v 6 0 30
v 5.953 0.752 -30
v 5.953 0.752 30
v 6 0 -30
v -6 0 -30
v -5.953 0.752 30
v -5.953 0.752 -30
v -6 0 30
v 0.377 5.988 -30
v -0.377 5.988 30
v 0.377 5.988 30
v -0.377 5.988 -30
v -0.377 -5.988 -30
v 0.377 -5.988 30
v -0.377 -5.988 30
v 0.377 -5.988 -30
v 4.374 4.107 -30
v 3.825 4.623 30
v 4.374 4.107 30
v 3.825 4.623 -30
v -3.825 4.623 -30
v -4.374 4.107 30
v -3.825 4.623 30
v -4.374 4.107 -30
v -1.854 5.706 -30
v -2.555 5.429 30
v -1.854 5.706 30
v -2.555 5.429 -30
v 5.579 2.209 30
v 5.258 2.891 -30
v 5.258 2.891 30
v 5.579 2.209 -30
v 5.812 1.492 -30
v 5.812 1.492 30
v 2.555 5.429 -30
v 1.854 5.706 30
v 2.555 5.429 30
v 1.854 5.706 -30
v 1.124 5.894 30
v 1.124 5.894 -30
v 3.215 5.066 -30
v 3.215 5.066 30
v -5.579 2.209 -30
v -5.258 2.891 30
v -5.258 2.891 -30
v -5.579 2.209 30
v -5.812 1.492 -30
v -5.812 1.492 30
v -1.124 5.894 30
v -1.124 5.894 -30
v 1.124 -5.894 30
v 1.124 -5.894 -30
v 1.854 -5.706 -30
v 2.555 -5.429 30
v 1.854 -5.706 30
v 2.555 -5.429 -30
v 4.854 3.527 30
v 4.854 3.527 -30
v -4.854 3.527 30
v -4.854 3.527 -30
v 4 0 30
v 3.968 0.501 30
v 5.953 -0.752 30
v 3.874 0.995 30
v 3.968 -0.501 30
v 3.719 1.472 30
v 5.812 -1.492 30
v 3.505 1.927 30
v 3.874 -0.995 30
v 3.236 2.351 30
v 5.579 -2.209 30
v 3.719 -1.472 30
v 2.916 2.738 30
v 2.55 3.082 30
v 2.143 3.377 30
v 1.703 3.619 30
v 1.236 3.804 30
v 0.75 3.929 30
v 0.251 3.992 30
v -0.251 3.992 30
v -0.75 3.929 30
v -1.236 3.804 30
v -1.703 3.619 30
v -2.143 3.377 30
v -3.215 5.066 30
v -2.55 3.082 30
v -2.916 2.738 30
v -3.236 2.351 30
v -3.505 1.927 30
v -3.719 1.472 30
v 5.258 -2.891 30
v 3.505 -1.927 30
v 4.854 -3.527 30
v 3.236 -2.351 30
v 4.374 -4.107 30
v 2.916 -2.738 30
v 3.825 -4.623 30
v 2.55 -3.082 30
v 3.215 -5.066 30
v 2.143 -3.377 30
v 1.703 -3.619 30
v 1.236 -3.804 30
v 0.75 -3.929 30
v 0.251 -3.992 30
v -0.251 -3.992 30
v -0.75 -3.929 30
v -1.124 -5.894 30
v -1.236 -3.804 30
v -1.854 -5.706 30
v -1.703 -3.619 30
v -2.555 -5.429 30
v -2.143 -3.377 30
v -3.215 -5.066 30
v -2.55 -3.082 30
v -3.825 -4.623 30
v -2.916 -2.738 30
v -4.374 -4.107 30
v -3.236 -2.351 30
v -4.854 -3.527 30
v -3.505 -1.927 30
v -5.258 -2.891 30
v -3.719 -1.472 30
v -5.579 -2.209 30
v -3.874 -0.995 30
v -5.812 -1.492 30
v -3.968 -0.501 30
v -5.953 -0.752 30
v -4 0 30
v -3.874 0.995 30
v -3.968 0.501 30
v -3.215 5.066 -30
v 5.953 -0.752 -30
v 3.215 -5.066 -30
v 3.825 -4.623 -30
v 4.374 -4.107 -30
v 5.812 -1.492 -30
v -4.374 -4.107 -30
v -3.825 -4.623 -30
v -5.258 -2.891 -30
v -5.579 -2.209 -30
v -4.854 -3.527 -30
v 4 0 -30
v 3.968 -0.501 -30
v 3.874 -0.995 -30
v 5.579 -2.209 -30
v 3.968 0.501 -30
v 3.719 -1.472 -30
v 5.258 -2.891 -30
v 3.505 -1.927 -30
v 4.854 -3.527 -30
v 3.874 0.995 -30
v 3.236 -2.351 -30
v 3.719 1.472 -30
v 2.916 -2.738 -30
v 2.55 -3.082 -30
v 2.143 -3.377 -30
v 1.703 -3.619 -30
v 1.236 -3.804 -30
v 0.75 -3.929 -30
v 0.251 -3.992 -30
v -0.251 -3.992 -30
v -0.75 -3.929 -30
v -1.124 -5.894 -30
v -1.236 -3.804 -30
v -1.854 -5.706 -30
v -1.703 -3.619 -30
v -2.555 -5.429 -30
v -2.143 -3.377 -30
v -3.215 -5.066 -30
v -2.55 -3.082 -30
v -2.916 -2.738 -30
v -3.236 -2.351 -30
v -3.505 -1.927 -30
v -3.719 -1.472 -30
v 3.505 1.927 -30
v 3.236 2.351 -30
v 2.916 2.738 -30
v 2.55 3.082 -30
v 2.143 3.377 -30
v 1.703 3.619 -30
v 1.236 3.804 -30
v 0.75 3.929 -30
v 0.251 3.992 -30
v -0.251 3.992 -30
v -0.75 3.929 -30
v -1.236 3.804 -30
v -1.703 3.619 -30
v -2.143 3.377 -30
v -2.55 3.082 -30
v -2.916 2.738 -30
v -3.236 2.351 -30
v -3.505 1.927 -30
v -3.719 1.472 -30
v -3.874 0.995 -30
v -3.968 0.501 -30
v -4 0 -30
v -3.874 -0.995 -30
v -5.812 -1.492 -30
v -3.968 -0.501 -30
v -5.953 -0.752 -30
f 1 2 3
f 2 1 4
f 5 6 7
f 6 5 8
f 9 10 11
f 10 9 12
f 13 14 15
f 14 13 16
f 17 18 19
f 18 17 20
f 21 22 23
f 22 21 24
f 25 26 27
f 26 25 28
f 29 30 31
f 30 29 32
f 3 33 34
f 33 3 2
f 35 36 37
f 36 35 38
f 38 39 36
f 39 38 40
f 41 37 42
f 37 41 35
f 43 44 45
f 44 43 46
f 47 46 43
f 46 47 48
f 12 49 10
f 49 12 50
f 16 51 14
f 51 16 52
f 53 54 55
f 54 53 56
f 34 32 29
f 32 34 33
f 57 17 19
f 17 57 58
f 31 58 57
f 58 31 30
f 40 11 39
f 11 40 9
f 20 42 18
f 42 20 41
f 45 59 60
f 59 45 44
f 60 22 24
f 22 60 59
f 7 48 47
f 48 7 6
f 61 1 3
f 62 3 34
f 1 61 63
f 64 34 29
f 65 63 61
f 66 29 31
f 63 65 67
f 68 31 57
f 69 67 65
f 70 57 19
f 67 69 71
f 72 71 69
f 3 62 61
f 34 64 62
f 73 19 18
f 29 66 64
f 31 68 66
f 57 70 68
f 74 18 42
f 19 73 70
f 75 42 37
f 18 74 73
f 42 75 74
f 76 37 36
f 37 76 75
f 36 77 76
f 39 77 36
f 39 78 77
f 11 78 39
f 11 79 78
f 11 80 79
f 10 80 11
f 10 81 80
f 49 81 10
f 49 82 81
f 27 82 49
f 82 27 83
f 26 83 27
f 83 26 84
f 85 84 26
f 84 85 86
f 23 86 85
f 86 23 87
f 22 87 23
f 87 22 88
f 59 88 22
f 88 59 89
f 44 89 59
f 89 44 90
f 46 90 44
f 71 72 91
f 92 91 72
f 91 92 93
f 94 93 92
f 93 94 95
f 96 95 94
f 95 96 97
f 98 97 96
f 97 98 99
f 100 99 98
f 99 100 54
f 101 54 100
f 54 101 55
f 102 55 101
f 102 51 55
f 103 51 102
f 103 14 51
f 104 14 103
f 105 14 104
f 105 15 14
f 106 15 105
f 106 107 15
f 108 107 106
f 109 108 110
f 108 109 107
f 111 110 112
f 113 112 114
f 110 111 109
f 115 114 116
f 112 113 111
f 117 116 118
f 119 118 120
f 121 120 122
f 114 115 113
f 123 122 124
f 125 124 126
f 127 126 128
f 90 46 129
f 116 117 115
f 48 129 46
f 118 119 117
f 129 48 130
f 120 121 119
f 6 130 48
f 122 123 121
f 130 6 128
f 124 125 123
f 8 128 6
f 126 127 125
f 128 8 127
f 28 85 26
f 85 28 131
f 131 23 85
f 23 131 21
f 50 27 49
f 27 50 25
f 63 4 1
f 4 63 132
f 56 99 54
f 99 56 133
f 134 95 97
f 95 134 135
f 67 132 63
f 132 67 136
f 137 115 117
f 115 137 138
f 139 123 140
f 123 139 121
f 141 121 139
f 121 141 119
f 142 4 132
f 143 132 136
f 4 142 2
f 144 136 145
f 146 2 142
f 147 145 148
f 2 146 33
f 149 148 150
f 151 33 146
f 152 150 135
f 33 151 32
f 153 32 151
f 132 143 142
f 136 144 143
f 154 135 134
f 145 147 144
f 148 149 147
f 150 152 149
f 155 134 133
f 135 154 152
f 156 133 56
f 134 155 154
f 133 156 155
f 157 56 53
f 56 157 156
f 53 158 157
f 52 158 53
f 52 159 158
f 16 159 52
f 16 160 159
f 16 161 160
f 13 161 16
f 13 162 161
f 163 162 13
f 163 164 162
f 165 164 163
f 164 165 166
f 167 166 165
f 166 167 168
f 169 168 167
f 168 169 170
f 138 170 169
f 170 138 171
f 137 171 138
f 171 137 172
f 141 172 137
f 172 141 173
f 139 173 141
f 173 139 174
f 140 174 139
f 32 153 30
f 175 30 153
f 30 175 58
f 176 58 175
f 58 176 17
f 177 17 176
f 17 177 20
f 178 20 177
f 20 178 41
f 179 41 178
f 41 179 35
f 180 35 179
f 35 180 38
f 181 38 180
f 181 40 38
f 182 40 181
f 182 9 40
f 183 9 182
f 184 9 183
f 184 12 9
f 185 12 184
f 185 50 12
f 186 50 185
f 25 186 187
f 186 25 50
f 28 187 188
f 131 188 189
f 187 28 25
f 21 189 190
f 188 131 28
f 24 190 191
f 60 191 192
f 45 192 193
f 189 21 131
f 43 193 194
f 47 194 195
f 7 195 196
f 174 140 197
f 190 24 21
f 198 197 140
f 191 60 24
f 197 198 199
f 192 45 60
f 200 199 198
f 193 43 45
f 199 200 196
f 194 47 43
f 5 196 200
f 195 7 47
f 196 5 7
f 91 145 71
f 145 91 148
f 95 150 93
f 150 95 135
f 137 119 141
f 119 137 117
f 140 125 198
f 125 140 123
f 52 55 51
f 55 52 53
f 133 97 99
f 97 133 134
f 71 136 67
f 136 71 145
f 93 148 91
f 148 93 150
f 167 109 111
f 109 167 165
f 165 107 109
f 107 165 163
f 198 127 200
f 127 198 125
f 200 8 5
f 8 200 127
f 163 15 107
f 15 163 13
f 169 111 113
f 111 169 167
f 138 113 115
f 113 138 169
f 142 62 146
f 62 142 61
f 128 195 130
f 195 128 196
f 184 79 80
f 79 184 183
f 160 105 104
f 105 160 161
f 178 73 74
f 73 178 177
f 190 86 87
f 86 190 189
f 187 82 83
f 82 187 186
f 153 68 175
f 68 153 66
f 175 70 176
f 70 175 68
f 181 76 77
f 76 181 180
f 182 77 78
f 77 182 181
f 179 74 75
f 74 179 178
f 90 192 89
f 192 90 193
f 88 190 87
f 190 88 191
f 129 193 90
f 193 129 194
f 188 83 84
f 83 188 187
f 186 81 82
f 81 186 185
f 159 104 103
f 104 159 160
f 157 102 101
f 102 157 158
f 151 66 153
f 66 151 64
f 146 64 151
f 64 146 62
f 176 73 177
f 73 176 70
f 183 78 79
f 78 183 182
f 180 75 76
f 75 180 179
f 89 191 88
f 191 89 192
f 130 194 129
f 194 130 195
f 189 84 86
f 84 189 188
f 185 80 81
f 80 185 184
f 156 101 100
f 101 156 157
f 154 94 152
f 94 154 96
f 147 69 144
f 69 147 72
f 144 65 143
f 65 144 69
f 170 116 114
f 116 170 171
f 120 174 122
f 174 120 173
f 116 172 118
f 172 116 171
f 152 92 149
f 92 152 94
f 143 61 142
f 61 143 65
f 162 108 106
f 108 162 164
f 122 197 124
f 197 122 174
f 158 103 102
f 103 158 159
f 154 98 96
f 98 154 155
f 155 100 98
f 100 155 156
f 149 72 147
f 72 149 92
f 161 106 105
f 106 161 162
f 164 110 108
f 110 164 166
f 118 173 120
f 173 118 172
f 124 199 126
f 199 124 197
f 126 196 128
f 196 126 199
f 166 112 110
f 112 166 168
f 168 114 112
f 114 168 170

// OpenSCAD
$fn = 50;


difference() {
	union() {
		translate(v = [0, 0, -30.0000000000]) {
			cylinder(h = 60, r = 6.0000000000);
		}
	}
	union() {
		translate(v = [0, 0, -100.0000000000]) {
			cylinder(h = 200, r = 4);
		}
	}
}
